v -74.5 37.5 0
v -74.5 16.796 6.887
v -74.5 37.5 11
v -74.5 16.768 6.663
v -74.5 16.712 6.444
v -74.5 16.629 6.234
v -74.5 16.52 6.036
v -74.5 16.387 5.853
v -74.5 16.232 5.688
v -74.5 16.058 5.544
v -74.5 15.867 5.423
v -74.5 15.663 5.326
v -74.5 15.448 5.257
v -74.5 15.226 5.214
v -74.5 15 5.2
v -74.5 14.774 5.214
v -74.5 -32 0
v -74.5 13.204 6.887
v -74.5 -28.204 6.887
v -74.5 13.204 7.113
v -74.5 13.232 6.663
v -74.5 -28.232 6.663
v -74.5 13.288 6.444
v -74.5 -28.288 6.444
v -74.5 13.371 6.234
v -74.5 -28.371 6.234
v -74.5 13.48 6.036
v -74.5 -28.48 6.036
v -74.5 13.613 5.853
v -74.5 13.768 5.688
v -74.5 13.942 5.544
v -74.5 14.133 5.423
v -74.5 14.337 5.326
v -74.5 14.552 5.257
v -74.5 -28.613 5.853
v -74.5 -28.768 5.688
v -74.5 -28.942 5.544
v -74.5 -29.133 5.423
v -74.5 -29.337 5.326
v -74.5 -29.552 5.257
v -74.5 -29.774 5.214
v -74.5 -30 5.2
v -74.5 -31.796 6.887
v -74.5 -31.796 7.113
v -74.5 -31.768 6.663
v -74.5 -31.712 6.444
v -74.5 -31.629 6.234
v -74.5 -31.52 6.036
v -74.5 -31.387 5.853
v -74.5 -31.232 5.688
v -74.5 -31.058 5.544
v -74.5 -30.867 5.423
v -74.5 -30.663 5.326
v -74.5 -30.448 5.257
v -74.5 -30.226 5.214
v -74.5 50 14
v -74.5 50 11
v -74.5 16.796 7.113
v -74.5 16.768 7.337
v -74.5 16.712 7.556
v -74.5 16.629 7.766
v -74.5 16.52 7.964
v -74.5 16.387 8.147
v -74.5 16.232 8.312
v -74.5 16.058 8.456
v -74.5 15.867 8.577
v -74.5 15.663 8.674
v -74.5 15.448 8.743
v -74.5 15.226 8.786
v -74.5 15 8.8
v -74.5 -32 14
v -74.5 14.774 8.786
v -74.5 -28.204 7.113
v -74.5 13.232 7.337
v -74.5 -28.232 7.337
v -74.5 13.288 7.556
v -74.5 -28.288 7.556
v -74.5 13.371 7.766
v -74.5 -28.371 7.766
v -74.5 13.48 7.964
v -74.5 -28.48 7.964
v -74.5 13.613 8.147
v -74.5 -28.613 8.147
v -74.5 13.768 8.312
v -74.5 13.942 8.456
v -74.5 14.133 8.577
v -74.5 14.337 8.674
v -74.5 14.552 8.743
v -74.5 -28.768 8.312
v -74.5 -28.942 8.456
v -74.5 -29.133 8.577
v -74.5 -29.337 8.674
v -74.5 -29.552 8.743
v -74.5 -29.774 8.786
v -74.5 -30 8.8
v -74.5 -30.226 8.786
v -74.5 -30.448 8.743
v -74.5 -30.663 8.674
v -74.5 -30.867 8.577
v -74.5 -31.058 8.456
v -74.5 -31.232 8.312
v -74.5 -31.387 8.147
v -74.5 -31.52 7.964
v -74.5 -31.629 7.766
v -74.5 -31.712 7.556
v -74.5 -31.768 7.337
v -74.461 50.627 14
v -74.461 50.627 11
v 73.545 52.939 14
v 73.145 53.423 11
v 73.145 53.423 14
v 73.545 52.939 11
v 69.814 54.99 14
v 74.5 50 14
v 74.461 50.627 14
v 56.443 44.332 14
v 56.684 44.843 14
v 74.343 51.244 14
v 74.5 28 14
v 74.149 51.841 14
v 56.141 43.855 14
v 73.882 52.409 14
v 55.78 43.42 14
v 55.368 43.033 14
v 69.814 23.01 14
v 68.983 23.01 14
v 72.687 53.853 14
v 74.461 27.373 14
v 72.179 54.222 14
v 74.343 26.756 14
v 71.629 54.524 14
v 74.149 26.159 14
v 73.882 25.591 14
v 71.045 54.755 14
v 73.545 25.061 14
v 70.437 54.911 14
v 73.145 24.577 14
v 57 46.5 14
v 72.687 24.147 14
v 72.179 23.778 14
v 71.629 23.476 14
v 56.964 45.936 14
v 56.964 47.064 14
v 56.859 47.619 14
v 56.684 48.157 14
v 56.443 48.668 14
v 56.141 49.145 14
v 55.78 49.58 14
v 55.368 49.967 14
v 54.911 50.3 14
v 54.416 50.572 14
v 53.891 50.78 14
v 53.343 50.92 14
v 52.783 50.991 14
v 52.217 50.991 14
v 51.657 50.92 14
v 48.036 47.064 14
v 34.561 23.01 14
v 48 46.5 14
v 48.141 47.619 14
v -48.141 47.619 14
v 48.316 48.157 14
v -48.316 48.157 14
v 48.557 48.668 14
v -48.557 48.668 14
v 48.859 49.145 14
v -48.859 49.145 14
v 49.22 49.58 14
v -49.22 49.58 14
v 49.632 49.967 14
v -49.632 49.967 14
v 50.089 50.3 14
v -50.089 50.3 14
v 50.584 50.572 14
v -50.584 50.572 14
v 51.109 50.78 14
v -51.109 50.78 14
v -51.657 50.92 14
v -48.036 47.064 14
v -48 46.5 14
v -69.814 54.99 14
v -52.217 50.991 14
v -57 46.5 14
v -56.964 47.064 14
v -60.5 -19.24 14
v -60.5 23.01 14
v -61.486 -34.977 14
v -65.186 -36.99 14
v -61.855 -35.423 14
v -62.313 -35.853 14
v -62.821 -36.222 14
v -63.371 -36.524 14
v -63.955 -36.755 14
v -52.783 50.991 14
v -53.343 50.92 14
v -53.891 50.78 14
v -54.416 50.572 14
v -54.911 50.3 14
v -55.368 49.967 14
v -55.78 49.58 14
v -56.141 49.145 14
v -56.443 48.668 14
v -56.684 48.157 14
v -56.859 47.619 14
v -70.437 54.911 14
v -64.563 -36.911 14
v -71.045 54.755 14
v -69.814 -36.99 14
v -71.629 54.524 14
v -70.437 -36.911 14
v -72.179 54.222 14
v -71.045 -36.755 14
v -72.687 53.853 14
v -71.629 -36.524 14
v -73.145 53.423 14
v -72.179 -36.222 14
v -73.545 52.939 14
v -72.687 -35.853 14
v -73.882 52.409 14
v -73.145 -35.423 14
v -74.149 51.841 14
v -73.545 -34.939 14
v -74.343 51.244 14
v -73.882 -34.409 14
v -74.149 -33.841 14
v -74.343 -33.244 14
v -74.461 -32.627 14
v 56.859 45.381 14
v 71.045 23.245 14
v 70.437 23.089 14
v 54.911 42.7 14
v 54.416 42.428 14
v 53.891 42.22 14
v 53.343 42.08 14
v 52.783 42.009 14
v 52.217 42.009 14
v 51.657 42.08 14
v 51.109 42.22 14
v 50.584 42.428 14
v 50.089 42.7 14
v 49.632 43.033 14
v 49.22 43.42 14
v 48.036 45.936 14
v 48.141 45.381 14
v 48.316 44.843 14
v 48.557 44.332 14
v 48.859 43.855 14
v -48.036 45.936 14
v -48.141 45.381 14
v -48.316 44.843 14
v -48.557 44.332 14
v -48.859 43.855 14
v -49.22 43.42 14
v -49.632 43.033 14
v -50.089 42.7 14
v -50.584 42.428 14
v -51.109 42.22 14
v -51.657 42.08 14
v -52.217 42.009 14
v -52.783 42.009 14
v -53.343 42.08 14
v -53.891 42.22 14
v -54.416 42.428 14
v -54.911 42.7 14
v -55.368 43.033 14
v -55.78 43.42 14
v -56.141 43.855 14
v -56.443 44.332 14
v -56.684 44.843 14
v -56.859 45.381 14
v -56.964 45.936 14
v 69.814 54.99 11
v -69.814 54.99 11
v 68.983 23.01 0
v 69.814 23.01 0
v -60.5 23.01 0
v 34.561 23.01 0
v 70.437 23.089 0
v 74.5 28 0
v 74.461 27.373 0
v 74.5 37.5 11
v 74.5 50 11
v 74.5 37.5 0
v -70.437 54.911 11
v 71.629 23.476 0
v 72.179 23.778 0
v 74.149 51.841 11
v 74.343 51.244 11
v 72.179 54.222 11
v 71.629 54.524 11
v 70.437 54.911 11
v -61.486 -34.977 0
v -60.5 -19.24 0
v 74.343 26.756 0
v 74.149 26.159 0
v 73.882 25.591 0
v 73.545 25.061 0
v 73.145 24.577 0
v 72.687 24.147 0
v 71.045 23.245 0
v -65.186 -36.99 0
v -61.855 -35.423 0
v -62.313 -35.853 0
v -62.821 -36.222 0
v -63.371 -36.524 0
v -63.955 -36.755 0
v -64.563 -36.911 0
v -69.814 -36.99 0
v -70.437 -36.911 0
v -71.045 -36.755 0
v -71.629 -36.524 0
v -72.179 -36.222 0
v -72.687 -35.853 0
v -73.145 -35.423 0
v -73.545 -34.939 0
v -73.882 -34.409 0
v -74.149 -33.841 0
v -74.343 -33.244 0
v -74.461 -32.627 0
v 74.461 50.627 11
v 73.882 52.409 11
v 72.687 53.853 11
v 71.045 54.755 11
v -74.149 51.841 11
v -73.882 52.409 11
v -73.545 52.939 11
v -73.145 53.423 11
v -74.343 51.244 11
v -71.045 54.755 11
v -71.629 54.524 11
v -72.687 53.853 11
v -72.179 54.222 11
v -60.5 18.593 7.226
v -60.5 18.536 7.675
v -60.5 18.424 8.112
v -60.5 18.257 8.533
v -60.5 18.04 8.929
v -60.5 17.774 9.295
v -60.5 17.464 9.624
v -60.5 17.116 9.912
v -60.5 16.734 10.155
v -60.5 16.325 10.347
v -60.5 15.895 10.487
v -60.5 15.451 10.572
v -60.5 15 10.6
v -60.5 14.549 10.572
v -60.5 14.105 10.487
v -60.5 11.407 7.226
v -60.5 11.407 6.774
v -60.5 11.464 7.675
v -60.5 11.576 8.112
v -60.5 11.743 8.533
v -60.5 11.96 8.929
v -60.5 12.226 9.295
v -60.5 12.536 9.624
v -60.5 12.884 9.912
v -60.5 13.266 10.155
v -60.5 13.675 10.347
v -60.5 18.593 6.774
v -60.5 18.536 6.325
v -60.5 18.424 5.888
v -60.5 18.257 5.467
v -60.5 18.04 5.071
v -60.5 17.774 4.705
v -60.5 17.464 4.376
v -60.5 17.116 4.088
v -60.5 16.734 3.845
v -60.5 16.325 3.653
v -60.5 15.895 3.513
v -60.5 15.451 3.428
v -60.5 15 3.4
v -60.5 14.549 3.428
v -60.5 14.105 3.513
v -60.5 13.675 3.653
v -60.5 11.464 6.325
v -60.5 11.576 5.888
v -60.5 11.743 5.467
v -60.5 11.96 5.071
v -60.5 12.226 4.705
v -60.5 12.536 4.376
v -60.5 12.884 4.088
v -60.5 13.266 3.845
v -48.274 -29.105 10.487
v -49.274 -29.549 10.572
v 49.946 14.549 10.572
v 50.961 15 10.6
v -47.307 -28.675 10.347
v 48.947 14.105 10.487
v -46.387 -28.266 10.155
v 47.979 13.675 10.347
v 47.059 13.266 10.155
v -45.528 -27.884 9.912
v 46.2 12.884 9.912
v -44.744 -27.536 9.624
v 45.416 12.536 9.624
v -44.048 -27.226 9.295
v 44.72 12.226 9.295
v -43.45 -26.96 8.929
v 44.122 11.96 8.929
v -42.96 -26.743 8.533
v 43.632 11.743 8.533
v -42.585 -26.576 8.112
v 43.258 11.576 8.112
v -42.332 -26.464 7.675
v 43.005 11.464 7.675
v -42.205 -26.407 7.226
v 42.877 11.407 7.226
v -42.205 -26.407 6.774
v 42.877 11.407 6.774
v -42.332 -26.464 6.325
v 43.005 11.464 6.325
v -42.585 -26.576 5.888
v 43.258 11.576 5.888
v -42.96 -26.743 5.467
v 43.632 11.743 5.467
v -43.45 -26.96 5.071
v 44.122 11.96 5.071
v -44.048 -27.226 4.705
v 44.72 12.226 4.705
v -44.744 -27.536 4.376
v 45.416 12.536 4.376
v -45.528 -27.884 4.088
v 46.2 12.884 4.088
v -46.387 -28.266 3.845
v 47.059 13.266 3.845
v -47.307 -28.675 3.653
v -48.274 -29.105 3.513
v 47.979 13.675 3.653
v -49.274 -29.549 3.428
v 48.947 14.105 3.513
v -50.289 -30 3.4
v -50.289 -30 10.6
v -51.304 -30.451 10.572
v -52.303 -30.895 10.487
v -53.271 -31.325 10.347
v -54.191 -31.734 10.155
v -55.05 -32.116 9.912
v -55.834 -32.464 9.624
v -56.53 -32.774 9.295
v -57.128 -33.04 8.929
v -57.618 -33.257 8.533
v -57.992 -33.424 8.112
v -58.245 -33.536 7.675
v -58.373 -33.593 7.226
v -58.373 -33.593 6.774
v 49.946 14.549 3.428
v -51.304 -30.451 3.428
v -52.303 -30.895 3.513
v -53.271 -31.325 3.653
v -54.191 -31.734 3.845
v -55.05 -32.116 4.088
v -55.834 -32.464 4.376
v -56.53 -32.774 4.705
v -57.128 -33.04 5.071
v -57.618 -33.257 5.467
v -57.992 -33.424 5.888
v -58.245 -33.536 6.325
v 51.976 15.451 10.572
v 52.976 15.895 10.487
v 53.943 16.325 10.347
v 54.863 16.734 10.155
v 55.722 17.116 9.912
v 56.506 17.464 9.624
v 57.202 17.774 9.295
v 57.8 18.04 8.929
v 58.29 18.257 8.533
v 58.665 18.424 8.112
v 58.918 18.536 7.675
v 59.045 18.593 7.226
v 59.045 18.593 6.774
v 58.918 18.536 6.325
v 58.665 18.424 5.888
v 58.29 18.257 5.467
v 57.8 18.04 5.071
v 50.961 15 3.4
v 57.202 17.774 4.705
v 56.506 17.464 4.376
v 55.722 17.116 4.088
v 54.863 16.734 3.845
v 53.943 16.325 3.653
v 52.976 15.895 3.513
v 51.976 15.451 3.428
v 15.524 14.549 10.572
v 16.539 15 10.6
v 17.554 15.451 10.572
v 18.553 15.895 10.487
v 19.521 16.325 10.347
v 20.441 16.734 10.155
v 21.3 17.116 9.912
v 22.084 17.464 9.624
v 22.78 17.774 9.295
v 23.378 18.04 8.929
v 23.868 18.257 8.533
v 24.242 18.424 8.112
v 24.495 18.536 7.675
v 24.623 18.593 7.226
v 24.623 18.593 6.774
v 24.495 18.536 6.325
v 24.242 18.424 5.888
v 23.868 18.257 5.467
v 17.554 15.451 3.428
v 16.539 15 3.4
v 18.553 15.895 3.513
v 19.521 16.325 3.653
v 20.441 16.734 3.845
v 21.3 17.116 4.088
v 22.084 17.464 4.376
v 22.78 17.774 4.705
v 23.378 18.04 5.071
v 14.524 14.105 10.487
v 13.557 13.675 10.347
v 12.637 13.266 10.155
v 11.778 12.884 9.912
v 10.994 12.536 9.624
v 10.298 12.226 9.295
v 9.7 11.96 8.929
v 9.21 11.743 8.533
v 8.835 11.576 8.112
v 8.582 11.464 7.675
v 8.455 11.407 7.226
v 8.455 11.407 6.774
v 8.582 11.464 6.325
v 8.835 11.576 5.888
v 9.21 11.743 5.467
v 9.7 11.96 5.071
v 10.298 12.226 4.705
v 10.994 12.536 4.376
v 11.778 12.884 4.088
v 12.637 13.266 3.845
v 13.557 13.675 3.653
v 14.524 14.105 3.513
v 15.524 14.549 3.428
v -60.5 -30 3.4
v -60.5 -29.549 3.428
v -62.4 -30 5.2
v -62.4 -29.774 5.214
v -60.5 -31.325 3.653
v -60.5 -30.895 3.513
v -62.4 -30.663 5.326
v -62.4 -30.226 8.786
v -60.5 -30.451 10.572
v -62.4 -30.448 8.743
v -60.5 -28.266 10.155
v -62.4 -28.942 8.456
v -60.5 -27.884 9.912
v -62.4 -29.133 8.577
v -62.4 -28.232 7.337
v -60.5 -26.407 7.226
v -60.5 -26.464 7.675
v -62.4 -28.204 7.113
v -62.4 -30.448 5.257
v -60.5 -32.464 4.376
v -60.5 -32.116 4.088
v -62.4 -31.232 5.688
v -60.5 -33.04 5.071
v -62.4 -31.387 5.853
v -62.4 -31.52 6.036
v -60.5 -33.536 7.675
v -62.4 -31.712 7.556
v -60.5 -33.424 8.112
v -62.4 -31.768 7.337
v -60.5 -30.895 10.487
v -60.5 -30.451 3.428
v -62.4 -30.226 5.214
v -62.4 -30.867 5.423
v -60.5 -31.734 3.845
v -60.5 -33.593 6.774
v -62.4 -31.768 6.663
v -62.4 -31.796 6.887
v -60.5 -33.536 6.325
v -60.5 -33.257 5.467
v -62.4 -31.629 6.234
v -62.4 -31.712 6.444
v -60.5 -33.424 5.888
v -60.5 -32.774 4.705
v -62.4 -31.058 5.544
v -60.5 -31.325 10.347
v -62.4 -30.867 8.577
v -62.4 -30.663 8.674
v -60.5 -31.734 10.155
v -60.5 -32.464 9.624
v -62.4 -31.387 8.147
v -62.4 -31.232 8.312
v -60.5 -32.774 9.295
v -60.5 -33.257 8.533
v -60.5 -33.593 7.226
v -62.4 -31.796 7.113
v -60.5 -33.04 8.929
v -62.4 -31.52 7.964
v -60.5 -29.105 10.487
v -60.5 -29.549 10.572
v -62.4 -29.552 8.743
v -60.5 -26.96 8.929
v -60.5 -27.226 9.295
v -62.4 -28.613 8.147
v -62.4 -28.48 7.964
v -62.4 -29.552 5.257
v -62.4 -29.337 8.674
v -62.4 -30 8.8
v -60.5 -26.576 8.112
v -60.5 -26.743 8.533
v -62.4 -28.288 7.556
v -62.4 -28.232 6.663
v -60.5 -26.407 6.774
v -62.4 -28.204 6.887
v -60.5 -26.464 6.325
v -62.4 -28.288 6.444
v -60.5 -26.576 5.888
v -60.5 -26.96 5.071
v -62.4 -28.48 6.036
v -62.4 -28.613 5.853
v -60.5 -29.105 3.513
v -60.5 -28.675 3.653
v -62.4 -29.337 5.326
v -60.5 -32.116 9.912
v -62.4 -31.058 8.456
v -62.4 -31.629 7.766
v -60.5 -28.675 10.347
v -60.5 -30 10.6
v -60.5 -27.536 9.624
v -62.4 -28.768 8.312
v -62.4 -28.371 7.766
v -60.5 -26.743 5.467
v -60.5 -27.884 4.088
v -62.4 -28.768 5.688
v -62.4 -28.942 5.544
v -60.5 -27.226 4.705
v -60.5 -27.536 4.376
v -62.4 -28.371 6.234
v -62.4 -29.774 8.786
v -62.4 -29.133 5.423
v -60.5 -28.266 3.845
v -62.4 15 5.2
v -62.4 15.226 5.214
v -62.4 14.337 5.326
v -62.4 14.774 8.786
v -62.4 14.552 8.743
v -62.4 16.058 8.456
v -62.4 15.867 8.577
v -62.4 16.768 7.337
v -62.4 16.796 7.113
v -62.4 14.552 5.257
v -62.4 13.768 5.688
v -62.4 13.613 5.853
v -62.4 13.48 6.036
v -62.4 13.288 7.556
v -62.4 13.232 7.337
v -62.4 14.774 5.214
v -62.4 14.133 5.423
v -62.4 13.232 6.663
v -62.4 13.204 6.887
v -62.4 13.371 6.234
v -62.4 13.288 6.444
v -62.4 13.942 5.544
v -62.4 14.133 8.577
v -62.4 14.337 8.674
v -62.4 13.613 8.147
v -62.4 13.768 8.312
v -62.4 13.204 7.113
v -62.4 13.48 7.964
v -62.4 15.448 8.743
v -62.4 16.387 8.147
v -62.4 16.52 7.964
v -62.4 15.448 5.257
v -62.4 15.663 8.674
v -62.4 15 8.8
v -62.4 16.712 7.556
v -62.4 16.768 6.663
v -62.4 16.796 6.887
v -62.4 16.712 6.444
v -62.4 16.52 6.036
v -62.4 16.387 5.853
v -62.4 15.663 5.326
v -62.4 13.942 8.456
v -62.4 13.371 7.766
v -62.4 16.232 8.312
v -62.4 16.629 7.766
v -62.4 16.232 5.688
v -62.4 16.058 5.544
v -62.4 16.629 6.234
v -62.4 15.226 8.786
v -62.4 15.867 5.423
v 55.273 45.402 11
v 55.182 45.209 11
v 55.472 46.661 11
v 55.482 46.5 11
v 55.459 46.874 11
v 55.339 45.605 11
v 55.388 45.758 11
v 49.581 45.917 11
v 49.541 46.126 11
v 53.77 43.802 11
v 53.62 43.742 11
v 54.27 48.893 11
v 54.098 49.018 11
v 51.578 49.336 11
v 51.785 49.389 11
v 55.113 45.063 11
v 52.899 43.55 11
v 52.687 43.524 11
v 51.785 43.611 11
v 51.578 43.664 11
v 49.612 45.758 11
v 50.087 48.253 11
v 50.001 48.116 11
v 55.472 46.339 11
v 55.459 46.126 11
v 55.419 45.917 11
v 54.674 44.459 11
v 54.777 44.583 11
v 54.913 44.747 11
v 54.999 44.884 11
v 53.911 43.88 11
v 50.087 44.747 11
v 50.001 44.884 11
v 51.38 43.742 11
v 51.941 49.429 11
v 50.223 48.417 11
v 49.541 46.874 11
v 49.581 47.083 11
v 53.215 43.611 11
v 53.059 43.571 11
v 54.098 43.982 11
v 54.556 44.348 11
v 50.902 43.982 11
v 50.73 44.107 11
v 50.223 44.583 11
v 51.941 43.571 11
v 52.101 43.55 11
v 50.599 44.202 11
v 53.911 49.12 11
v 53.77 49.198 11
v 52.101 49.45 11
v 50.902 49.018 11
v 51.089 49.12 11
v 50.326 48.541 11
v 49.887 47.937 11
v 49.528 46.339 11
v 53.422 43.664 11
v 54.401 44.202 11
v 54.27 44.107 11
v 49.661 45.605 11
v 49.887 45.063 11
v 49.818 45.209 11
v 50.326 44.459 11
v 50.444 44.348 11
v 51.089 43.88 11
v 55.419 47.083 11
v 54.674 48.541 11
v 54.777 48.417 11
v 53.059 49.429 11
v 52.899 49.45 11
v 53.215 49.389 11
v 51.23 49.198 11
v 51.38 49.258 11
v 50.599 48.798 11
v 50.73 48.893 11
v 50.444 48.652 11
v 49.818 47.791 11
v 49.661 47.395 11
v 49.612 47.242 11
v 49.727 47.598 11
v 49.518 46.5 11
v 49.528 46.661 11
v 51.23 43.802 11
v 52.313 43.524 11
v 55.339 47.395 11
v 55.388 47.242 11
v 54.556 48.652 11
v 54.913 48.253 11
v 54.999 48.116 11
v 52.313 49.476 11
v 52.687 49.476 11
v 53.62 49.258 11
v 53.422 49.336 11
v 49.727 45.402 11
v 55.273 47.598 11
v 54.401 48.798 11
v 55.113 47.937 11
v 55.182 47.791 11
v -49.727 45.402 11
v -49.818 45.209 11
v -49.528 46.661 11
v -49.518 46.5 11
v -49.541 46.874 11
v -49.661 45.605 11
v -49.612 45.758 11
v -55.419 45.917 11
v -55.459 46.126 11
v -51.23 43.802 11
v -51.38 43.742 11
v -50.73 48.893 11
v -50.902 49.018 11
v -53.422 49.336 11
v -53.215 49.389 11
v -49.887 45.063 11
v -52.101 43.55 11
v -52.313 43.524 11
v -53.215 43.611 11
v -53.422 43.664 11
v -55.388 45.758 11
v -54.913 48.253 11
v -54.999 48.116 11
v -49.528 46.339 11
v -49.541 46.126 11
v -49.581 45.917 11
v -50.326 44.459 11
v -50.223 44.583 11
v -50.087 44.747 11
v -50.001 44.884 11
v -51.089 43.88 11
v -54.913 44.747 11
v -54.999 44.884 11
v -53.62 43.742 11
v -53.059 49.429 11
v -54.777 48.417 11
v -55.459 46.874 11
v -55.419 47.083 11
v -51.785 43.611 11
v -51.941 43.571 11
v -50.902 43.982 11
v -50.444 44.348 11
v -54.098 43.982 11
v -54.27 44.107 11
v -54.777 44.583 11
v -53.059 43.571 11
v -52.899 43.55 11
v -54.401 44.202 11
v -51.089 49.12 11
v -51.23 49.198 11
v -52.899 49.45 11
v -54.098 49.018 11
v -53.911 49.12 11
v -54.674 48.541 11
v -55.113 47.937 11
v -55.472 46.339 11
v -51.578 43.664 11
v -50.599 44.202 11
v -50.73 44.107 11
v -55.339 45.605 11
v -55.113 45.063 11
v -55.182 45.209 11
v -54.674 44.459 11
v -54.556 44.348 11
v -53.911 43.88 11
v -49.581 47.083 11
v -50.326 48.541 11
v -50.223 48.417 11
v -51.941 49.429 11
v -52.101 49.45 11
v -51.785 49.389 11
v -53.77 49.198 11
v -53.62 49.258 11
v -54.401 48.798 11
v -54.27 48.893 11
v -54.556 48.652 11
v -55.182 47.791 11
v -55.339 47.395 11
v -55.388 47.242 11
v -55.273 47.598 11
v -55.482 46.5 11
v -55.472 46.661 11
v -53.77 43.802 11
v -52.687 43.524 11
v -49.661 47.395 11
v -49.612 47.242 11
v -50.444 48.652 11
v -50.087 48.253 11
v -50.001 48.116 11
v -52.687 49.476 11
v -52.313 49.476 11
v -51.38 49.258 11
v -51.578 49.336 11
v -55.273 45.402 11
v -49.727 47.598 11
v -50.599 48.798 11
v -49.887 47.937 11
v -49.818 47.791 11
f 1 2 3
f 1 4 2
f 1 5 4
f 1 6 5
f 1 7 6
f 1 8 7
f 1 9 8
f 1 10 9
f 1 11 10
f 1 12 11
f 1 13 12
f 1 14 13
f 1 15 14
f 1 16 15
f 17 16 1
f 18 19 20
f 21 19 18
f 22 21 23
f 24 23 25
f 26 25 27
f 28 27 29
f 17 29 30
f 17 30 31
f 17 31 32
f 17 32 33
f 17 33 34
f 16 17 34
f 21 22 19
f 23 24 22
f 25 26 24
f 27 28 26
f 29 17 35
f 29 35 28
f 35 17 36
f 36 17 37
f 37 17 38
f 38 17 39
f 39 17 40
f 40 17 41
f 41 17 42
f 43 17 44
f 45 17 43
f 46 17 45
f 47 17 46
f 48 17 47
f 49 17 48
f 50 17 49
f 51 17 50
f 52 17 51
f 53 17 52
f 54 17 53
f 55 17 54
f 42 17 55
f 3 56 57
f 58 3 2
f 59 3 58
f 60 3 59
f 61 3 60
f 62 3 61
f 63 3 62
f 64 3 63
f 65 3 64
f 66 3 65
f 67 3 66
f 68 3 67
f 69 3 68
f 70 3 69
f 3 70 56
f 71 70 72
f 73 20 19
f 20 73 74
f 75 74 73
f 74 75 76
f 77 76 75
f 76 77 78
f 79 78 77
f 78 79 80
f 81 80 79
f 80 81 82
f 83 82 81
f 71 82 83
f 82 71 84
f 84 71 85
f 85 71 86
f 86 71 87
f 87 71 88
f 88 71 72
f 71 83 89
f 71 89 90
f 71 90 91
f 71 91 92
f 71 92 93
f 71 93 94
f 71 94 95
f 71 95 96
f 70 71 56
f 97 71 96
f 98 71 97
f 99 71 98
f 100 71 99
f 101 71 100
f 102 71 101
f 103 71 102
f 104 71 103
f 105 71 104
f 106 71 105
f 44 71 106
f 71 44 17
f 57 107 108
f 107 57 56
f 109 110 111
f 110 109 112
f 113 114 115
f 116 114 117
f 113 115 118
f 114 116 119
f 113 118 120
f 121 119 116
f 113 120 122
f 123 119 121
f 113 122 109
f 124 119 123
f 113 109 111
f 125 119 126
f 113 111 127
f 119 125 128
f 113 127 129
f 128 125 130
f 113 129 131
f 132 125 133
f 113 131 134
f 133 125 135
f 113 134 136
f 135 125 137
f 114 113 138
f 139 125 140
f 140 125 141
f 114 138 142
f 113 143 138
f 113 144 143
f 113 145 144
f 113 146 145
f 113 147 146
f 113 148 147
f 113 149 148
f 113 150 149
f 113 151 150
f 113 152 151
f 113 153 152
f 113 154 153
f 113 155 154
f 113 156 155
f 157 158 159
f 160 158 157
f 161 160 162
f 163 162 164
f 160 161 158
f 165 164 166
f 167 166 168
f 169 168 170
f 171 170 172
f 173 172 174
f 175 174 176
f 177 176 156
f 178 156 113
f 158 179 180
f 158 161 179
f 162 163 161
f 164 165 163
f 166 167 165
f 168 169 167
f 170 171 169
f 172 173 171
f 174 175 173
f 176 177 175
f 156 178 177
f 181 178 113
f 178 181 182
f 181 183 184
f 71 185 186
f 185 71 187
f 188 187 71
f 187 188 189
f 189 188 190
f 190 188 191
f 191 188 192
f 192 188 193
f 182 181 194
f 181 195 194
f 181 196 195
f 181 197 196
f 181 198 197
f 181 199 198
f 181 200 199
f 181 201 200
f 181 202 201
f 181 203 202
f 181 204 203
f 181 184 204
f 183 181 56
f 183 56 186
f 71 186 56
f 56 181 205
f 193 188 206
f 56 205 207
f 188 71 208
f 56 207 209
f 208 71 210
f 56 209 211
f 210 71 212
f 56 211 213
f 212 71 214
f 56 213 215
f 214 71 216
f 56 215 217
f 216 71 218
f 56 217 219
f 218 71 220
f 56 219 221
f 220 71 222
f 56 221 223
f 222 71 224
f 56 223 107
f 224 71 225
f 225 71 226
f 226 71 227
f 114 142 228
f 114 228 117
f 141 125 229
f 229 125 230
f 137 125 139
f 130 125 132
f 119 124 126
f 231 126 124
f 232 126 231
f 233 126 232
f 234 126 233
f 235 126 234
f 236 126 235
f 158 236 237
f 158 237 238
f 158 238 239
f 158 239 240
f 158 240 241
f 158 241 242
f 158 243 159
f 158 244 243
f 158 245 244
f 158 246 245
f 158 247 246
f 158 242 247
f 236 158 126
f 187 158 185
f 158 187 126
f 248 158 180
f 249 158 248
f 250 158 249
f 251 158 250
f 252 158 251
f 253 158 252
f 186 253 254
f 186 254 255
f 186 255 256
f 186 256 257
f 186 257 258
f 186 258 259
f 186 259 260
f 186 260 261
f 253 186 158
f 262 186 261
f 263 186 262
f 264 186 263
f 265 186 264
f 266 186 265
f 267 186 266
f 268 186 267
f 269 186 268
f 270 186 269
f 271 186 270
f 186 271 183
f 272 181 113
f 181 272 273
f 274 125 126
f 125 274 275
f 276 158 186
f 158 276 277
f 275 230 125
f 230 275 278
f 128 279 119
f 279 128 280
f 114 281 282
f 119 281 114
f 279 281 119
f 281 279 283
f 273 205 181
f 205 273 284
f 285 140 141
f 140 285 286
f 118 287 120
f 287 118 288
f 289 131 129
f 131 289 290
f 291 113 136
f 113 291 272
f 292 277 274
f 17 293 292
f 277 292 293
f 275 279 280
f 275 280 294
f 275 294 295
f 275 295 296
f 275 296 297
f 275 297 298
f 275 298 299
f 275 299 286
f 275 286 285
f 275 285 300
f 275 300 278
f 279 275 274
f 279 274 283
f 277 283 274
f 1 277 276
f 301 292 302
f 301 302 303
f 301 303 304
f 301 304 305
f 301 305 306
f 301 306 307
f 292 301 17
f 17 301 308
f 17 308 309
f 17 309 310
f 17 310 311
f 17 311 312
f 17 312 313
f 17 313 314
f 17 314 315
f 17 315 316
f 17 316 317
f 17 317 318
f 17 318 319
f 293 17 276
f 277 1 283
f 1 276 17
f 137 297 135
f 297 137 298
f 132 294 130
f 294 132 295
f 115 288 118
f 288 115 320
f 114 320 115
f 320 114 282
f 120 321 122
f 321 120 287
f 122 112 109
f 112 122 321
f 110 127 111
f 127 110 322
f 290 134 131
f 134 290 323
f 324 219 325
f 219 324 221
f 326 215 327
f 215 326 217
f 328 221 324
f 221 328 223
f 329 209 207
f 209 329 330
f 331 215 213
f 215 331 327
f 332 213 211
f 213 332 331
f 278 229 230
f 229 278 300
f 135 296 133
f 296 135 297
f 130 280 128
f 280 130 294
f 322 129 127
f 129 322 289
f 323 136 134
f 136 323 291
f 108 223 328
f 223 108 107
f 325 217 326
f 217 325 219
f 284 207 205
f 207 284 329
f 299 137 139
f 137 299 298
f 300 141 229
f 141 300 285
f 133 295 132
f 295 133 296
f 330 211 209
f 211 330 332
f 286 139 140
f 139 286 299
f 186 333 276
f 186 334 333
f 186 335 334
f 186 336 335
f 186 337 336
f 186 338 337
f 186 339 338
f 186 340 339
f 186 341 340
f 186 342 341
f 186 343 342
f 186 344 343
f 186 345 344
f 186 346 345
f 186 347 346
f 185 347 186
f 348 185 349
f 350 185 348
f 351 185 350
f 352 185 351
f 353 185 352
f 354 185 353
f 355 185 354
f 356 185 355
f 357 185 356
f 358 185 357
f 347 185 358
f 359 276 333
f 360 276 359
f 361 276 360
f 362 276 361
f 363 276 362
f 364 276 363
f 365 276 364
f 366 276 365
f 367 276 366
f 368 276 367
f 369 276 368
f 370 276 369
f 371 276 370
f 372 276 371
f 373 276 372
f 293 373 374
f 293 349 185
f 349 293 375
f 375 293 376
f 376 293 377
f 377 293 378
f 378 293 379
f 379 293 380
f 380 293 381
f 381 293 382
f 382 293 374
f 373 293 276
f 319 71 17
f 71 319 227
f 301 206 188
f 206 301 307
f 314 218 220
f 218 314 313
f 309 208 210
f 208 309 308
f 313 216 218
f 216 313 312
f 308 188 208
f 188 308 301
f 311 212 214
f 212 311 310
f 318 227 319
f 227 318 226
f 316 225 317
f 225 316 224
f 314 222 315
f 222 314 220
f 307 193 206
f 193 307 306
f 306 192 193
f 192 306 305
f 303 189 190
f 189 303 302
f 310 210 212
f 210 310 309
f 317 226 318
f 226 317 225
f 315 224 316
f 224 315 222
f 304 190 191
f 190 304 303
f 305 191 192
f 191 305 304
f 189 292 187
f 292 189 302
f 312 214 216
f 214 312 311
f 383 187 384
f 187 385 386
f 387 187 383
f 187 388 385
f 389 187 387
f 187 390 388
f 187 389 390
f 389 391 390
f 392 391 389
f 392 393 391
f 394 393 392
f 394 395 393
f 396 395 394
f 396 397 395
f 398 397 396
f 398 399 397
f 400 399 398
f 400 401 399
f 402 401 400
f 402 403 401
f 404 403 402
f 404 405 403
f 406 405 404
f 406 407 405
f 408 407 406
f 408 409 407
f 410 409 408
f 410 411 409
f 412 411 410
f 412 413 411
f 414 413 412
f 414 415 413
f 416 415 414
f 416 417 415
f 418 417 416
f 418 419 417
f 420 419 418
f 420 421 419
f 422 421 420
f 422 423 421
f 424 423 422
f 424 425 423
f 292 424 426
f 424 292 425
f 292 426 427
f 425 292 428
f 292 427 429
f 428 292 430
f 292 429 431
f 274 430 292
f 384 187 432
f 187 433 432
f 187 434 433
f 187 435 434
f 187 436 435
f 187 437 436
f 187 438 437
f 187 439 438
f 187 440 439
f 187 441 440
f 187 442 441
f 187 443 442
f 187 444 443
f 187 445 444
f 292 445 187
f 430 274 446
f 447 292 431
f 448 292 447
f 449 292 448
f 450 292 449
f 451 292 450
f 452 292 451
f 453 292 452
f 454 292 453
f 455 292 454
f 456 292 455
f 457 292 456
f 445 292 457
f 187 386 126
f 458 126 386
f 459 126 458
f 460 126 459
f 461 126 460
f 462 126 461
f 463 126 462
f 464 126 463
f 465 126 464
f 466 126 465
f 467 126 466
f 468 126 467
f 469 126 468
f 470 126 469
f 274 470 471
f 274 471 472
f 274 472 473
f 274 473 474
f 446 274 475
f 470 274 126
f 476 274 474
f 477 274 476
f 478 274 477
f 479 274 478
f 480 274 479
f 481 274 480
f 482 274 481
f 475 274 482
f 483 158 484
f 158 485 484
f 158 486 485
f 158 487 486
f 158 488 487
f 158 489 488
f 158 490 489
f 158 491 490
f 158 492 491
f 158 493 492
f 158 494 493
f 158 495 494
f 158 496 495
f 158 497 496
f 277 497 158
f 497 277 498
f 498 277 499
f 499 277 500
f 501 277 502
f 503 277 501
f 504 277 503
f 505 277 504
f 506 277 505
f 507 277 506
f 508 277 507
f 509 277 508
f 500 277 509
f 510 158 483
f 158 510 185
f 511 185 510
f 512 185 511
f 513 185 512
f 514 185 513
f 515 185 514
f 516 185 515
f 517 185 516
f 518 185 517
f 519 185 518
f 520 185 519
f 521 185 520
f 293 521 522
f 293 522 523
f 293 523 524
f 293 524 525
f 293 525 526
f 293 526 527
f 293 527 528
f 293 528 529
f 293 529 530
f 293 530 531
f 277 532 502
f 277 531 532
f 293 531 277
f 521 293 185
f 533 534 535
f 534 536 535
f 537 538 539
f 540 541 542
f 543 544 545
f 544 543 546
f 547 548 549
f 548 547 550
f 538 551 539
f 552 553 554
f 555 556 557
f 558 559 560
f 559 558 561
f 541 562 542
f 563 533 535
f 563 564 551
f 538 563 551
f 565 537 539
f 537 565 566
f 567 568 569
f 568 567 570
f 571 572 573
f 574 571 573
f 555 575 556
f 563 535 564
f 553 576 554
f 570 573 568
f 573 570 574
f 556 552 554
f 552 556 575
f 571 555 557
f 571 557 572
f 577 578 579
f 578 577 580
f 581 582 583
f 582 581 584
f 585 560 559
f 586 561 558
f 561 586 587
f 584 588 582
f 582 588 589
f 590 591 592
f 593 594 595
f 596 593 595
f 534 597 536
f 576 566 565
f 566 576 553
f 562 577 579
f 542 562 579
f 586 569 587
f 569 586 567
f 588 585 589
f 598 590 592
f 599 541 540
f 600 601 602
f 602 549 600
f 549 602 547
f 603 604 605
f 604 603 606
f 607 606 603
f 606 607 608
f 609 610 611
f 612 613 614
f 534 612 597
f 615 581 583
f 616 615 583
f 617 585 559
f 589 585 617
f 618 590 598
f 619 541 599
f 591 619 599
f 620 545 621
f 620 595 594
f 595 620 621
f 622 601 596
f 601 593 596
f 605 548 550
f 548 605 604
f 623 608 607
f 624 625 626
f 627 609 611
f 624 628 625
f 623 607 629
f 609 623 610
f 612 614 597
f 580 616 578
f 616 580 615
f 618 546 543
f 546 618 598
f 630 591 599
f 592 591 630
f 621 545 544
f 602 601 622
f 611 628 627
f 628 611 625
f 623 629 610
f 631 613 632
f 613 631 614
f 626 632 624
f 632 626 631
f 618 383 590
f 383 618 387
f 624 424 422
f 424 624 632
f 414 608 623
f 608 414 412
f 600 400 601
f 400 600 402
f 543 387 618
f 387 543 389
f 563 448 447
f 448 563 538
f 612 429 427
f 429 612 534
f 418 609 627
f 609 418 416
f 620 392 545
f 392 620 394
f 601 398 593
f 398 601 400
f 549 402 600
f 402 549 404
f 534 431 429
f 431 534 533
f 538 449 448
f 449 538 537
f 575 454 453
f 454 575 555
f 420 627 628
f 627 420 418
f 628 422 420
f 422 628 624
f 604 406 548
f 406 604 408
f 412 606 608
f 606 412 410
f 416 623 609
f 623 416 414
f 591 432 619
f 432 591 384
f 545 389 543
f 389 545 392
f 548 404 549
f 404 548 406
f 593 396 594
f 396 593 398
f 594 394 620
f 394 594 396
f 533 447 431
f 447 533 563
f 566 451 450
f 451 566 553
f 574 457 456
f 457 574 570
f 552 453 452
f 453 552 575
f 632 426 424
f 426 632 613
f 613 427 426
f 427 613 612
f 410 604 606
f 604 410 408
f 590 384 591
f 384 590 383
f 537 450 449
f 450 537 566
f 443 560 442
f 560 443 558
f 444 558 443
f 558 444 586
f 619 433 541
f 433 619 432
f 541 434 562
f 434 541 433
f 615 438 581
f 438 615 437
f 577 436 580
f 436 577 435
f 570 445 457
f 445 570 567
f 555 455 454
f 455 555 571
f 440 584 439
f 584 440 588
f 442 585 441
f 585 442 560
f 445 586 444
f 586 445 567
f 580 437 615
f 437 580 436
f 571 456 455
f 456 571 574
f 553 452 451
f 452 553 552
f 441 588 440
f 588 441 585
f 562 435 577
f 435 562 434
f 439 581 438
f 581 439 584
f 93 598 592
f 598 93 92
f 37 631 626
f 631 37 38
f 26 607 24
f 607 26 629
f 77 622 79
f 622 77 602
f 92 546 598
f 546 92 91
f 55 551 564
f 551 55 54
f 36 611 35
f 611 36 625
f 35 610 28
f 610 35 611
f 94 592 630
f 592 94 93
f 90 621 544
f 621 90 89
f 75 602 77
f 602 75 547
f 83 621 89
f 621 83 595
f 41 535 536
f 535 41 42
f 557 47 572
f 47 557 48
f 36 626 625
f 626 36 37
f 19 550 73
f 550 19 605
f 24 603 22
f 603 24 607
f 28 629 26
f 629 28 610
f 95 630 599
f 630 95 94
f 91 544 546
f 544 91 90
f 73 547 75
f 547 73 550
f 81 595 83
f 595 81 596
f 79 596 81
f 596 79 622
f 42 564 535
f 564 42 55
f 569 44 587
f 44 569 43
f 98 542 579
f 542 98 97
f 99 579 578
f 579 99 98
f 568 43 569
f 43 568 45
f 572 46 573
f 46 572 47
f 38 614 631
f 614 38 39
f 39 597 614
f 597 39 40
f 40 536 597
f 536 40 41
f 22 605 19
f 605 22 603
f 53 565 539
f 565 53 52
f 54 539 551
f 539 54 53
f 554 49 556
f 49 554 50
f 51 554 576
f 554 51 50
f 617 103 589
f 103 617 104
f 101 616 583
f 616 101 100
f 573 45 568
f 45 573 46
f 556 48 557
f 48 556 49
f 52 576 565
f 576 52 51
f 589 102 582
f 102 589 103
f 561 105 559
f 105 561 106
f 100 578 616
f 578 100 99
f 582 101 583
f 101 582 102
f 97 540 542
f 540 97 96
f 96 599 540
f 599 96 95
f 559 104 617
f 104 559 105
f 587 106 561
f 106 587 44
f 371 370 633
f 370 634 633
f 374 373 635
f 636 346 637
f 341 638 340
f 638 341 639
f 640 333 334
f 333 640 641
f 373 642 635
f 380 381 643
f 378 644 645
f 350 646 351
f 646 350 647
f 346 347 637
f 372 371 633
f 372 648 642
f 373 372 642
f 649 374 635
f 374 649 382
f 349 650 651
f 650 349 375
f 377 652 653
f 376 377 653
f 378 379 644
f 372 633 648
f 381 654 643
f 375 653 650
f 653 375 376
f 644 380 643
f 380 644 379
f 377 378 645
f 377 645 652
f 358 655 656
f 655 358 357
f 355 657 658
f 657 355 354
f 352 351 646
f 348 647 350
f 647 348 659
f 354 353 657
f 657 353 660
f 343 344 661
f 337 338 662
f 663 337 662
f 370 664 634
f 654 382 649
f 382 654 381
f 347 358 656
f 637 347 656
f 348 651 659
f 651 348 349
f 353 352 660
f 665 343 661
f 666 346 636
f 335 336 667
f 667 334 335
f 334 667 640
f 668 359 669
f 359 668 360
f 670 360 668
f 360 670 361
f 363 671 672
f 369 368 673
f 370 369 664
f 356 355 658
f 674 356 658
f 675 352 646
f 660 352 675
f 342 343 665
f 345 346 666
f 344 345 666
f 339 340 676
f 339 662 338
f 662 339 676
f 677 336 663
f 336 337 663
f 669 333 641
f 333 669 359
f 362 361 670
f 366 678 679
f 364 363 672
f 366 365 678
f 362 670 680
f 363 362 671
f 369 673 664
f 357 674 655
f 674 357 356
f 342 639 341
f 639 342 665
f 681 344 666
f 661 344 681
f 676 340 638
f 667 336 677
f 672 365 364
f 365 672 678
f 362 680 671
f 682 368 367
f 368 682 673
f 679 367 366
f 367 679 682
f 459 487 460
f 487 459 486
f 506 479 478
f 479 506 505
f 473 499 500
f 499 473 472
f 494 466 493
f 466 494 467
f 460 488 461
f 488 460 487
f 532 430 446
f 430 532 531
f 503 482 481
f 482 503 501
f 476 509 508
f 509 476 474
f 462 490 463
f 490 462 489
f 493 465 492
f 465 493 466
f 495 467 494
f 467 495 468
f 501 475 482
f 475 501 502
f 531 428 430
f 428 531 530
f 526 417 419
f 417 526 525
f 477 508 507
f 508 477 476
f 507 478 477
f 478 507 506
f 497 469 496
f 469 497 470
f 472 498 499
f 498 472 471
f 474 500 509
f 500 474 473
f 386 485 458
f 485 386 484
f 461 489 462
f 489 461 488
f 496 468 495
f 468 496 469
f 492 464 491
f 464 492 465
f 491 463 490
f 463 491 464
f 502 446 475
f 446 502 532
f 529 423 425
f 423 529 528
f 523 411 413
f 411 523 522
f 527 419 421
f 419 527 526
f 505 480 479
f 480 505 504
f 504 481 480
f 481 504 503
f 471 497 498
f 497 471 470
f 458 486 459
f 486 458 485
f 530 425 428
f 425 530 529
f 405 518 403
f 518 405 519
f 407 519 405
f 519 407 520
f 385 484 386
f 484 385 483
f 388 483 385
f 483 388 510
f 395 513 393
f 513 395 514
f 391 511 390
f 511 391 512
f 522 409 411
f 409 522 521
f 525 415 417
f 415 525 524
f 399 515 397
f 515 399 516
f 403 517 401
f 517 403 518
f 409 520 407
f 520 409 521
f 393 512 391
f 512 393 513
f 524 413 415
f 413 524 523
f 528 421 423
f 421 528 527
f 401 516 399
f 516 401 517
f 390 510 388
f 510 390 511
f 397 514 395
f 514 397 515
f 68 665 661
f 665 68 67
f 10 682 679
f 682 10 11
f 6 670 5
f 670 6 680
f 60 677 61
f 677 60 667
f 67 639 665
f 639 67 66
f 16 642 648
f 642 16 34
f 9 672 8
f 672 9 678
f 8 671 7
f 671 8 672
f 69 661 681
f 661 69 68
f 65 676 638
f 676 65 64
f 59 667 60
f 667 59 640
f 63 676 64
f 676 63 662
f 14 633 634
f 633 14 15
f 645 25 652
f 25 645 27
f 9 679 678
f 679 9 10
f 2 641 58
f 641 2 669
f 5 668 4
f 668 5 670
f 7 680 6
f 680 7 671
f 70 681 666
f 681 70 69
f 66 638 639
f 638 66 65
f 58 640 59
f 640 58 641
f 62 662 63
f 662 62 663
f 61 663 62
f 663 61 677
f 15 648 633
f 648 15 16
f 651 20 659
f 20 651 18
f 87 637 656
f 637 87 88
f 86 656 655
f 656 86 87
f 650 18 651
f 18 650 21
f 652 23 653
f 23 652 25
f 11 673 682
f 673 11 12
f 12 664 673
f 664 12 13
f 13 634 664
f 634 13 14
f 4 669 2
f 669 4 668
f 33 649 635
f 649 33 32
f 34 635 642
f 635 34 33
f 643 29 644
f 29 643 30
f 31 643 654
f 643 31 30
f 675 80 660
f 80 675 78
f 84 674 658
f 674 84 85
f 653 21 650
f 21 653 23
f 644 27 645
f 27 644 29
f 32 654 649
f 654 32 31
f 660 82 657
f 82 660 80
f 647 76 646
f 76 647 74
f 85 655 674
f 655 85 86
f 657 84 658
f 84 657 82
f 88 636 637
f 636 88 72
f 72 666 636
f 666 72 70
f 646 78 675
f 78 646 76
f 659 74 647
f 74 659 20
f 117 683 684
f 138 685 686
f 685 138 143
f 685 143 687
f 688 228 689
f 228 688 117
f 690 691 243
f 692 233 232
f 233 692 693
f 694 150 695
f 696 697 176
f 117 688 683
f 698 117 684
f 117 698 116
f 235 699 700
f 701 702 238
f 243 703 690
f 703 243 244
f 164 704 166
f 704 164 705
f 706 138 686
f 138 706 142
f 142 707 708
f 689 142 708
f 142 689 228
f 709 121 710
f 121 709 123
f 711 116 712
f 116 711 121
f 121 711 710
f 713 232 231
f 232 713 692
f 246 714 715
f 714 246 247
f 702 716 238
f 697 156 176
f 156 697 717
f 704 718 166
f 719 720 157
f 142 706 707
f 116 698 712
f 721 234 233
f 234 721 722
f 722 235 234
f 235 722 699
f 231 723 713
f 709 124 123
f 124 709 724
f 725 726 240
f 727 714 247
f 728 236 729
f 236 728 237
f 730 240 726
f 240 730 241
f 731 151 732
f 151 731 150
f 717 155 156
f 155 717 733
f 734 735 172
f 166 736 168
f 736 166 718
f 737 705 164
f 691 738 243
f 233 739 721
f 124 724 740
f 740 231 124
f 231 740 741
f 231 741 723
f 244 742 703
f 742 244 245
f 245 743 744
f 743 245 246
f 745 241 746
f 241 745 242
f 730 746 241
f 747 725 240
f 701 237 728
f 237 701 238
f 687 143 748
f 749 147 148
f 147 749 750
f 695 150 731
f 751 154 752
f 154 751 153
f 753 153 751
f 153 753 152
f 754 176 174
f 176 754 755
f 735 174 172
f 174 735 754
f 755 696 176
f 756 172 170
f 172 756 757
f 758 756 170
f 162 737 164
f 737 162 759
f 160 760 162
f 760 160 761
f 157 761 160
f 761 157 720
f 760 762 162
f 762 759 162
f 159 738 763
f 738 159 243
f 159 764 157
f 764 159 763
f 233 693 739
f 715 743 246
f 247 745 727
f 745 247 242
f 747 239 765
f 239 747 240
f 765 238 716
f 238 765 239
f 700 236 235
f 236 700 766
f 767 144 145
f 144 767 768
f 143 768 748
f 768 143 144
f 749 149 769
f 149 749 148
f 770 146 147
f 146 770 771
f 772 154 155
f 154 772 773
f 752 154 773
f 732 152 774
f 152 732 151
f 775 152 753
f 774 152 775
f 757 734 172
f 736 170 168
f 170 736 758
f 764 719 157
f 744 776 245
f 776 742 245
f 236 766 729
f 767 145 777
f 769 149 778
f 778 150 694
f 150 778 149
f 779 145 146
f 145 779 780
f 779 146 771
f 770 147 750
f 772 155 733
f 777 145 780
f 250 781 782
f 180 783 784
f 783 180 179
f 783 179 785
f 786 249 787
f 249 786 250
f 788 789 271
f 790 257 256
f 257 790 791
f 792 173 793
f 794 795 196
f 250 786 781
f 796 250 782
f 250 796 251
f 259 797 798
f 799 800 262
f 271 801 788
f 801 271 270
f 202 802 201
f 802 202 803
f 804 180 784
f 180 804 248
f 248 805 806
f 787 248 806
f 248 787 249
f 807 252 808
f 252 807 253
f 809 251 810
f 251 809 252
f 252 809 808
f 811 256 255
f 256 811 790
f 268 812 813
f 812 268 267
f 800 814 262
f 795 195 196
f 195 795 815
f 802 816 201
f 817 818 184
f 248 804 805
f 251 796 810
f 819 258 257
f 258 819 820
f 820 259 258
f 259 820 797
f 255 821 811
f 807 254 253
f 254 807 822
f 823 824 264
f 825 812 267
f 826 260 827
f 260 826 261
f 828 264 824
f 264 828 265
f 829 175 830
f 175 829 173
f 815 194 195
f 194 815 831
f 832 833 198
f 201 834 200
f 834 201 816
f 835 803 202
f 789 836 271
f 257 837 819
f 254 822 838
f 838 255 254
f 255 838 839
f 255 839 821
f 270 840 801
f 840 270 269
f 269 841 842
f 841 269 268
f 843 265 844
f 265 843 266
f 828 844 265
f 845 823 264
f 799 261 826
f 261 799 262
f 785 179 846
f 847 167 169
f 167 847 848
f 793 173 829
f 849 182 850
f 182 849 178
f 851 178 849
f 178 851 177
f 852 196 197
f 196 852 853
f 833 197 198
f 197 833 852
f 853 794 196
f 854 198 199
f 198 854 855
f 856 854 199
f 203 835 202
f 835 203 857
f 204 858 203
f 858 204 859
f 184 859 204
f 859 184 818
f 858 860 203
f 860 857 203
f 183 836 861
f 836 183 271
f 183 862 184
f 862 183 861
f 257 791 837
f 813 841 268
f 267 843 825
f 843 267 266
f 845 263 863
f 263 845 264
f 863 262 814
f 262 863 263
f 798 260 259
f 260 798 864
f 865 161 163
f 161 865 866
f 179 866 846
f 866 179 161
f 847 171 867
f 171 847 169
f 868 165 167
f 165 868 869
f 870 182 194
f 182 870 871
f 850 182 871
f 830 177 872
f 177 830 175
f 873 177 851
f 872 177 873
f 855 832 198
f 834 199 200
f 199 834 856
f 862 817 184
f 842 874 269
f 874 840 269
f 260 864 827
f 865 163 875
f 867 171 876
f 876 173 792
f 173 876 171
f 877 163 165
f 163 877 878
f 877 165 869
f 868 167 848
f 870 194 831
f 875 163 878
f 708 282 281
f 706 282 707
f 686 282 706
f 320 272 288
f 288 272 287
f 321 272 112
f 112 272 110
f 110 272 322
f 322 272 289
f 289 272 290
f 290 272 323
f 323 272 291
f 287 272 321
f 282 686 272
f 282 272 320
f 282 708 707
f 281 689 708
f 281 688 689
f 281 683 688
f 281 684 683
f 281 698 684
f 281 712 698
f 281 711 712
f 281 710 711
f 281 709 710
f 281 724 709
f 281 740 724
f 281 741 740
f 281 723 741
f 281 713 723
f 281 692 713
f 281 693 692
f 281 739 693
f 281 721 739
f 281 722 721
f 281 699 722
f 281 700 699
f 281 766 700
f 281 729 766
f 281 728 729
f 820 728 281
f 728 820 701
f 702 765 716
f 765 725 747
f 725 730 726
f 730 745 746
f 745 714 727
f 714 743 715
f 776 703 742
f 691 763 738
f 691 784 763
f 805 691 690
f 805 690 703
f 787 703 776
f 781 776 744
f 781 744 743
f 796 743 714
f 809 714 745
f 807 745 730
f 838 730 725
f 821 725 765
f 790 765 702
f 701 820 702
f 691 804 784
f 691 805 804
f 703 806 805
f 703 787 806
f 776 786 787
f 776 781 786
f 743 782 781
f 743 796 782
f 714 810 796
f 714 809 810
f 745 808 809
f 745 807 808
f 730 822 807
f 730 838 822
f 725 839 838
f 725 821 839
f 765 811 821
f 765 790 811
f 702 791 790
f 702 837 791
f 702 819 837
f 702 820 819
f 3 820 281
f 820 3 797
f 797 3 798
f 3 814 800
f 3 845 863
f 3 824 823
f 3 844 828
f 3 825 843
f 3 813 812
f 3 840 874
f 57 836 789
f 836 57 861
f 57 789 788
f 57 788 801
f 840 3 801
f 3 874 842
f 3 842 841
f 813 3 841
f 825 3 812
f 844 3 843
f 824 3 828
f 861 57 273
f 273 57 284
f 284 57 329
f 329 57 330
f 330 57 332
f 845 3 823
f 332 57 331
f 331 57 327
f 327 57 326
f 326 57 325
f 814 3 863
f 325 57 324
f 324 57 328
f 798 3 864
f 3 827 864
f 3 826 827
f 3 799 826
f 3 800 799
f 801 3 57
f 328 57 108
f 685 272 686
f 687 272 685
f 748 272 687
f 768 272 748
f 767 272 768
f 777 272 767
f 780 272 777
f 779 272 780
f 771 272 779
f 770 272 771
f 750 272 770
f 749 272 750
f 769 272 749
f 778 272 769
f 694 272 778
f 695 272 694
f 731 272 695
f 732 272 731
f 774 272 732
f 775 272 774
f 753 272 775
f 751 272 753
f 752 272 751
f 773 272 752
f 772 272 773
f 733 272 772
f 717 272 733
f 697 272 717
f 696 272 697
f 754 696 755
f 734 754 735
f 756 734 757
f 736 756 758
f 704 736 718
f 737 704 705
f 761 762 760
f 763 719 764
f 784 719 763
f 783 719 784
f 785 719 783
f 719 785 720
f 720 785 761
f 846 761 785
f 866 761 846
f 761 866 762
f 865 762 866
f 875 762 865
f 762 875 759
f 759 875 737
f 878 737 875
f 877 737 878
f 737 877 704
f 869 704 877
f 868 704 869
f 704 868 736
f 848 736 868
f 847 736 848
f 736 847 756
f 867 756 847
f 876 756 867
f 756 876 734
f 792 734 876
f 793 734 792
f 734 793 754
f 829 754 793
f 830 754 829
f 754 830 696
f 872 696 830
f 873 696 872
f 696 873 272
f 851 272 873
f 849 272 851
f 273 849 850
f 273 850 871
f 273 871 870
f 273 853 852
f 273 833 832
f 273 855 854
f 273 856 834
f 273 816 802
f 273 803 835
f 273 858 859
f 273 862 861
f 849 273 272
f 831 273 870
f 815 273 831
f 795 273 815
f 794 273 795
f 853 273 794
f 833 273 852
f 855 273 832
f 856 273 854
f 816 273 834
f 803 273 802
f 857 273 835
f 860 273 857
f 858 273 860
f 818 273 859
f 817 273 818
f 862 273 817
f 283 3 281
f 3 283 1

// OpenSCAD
$fn = 50;


difference() {
	union() {
		translate(v = [0, 39.0000000000, 0]) {
			hull() {
				translate(v = [-69.5000000000, 11.0000000000, 0]) {
					cylinder(h = 14, r = 5);
				}
				translate(v = [69.5000000000, 11.0000000000, 0]) {
					cylinder(h = 14, r = 5);
				}
				translate(v = [-69.5000000000, -11.0000000000, 0]) {
					cylinder(h = 14, r = 5);
				}
				translate(v = [69.5000000000, -11.0000000000, 0]) {
					cylinder(h = 14, r = 5);
				}
			}
		}
		translate(v = [-67.5000000000, 0, 0]) {
			hull() {
				translate(v = [-2.0000000000, 32.0000000000, 0]) {
					cylinder(h = 14, r = 5);
				}
				translate(v = [2.0000000000, 32.0000000000, 0]) {
					cylinder(h = 14, r = 5);
				}
				translate(v = [-2.0000000000, -32.0000000000, 0]) {
					cylinder(h = 14, r = 5);
				}
				translate(v = [2.0000000000, -32.0000000000, 0]) {
					cylinder(h = 14, r = 5);
				}
			}
		}
		rotate(a = [0, 0, 23.9624889746]) {
			hull() {
				translate(v = [-73.3664335135, 2.0000000000, 0]) {
					cylinder(h = 14, r = 5);
				}
				translate(v = [73.3664335135, 2.0000000000, 0]) {
					cylinder(h = 14, r = 5);
				}
				translate(v = [-73.3664335135, -2.0000000000, 0]) {
					cylinder(h = 14, r = 5);
				}
				translate(v = [73.3664335135, -2.0000000000, 0]) {
					cylinder(h = 14, r = 5);
				}
			}
		}
	}
	union() {
		translate(v = [-60.5000000000, -30.0000000000, 7.0000000000]) {
			rotate(a = [0, 90, 0]) {
				difference() {
					union() {
						#translate(v = [0, 0, -14.0000000000]) {
							cylinder(h = 14, r = 1.5000000000);
						}
						#translate(v = [0, 0, -1.9000000000]) {
							cylinder(h = 1.9000000000, r1 = 1.8000000000, r2 = 3.6000000000);
						}
						#cylinder(h = 250, r = 3.6000000000);
						#translate(v = [0, 0, -14.0000000000]) {
							cylinder(h = 14, r = 1.8000000000);
						}
						#translate(v = [0, 0, -14.0000000000]) {
							cylinder(h = 14, r = 1.5000000000);
						}
					}
					union();
				}
			}
		}
		translate(v = [-60.5000000000, 15.0000000000, 7.0000000000]) {
			rotate(a = [0, 90, 0]) {
				difference() {
					union() {
						#translate(v = [0, 0, -14.0000000000]) {
							cylinder(h = 14, r = 1.5000000000);
						}
						#translate(v = [0, 0, -1.9000000000]) {
							cylinder(h = 1.9000000000, r1 = 1.8000000000, r2 = 3.6000000000);
						}
						#cylinder(h = 250, r = 3.6000000000);
						#translate(v = [0, 0, -14.0000000000]) {
							cylinder(h = 14, r = 1.8000000000);
						}
						#translate(v = [0, 0, -14.0000000000]) {
							cylinder(h = 14, r = 1.5000000000);
						}
					}
					union();
				}
			}
		}
		translate(v = [52.5000000000, 46.5000000000, 14.0000000000]) {
			rotate(a = [0, 0, 0]) {
				difference() {
					union() {
						#translate(v = [0, 0, -14.0000000000]) {
							cylinder(h = 14, r = 2.2500000000);
						}
						#translate(v = [0, 0, -4.2000000000]) {
							cylinder(h = 4.2000000000, r1 = 2.3750000000, r2 = 4.5000000000);
						}
						#cylinder(h = 250, r = 4.5000000000);
						#translate(v = [0, 0, -14.0000000000]) {
							cylinder(h = 14, r = 2.3750000000);
						}
						#translate(v = [0, 0, -14.0000000000]) {
							cylinder(h = 14, r = 2.2500000000);
						}
					}
					union();
				}
			}
		}
		translate(v = [-52.5000000000, 46.5000000000, 14.0000000000]) {
			rotate(a = [0, 0, 0]) {
				difference() {
					union() {
						#translate(v = [0, 0, -14.0000000000]) {
							cylinder(h = 14, r = 2.2500000000);
						}
						#translate(v = [0, 0, -4.2000000000]) {
							cylinder(h = 4.2000000000, r1 = 2.3750000000, r2 = 4.5000000000);
						}
						#cylinder(h = 250, r = 4.5000000000);
						#translate(v = [0, 0, -14.0000000000]) {
							cylinder(h = 14, r = 2.3750000000);
						}
						#translate(v = [0, 0, -14.0000000000]) {
							cylinder(h = 14, r = 2.2500000000);
						}
					}
					union();
				}
			}
		}
		translate(v = [-74.5000000000, 37.5000000000, 0]) {
			cube(size = [149, 18, 11]);
		}
	}
}
